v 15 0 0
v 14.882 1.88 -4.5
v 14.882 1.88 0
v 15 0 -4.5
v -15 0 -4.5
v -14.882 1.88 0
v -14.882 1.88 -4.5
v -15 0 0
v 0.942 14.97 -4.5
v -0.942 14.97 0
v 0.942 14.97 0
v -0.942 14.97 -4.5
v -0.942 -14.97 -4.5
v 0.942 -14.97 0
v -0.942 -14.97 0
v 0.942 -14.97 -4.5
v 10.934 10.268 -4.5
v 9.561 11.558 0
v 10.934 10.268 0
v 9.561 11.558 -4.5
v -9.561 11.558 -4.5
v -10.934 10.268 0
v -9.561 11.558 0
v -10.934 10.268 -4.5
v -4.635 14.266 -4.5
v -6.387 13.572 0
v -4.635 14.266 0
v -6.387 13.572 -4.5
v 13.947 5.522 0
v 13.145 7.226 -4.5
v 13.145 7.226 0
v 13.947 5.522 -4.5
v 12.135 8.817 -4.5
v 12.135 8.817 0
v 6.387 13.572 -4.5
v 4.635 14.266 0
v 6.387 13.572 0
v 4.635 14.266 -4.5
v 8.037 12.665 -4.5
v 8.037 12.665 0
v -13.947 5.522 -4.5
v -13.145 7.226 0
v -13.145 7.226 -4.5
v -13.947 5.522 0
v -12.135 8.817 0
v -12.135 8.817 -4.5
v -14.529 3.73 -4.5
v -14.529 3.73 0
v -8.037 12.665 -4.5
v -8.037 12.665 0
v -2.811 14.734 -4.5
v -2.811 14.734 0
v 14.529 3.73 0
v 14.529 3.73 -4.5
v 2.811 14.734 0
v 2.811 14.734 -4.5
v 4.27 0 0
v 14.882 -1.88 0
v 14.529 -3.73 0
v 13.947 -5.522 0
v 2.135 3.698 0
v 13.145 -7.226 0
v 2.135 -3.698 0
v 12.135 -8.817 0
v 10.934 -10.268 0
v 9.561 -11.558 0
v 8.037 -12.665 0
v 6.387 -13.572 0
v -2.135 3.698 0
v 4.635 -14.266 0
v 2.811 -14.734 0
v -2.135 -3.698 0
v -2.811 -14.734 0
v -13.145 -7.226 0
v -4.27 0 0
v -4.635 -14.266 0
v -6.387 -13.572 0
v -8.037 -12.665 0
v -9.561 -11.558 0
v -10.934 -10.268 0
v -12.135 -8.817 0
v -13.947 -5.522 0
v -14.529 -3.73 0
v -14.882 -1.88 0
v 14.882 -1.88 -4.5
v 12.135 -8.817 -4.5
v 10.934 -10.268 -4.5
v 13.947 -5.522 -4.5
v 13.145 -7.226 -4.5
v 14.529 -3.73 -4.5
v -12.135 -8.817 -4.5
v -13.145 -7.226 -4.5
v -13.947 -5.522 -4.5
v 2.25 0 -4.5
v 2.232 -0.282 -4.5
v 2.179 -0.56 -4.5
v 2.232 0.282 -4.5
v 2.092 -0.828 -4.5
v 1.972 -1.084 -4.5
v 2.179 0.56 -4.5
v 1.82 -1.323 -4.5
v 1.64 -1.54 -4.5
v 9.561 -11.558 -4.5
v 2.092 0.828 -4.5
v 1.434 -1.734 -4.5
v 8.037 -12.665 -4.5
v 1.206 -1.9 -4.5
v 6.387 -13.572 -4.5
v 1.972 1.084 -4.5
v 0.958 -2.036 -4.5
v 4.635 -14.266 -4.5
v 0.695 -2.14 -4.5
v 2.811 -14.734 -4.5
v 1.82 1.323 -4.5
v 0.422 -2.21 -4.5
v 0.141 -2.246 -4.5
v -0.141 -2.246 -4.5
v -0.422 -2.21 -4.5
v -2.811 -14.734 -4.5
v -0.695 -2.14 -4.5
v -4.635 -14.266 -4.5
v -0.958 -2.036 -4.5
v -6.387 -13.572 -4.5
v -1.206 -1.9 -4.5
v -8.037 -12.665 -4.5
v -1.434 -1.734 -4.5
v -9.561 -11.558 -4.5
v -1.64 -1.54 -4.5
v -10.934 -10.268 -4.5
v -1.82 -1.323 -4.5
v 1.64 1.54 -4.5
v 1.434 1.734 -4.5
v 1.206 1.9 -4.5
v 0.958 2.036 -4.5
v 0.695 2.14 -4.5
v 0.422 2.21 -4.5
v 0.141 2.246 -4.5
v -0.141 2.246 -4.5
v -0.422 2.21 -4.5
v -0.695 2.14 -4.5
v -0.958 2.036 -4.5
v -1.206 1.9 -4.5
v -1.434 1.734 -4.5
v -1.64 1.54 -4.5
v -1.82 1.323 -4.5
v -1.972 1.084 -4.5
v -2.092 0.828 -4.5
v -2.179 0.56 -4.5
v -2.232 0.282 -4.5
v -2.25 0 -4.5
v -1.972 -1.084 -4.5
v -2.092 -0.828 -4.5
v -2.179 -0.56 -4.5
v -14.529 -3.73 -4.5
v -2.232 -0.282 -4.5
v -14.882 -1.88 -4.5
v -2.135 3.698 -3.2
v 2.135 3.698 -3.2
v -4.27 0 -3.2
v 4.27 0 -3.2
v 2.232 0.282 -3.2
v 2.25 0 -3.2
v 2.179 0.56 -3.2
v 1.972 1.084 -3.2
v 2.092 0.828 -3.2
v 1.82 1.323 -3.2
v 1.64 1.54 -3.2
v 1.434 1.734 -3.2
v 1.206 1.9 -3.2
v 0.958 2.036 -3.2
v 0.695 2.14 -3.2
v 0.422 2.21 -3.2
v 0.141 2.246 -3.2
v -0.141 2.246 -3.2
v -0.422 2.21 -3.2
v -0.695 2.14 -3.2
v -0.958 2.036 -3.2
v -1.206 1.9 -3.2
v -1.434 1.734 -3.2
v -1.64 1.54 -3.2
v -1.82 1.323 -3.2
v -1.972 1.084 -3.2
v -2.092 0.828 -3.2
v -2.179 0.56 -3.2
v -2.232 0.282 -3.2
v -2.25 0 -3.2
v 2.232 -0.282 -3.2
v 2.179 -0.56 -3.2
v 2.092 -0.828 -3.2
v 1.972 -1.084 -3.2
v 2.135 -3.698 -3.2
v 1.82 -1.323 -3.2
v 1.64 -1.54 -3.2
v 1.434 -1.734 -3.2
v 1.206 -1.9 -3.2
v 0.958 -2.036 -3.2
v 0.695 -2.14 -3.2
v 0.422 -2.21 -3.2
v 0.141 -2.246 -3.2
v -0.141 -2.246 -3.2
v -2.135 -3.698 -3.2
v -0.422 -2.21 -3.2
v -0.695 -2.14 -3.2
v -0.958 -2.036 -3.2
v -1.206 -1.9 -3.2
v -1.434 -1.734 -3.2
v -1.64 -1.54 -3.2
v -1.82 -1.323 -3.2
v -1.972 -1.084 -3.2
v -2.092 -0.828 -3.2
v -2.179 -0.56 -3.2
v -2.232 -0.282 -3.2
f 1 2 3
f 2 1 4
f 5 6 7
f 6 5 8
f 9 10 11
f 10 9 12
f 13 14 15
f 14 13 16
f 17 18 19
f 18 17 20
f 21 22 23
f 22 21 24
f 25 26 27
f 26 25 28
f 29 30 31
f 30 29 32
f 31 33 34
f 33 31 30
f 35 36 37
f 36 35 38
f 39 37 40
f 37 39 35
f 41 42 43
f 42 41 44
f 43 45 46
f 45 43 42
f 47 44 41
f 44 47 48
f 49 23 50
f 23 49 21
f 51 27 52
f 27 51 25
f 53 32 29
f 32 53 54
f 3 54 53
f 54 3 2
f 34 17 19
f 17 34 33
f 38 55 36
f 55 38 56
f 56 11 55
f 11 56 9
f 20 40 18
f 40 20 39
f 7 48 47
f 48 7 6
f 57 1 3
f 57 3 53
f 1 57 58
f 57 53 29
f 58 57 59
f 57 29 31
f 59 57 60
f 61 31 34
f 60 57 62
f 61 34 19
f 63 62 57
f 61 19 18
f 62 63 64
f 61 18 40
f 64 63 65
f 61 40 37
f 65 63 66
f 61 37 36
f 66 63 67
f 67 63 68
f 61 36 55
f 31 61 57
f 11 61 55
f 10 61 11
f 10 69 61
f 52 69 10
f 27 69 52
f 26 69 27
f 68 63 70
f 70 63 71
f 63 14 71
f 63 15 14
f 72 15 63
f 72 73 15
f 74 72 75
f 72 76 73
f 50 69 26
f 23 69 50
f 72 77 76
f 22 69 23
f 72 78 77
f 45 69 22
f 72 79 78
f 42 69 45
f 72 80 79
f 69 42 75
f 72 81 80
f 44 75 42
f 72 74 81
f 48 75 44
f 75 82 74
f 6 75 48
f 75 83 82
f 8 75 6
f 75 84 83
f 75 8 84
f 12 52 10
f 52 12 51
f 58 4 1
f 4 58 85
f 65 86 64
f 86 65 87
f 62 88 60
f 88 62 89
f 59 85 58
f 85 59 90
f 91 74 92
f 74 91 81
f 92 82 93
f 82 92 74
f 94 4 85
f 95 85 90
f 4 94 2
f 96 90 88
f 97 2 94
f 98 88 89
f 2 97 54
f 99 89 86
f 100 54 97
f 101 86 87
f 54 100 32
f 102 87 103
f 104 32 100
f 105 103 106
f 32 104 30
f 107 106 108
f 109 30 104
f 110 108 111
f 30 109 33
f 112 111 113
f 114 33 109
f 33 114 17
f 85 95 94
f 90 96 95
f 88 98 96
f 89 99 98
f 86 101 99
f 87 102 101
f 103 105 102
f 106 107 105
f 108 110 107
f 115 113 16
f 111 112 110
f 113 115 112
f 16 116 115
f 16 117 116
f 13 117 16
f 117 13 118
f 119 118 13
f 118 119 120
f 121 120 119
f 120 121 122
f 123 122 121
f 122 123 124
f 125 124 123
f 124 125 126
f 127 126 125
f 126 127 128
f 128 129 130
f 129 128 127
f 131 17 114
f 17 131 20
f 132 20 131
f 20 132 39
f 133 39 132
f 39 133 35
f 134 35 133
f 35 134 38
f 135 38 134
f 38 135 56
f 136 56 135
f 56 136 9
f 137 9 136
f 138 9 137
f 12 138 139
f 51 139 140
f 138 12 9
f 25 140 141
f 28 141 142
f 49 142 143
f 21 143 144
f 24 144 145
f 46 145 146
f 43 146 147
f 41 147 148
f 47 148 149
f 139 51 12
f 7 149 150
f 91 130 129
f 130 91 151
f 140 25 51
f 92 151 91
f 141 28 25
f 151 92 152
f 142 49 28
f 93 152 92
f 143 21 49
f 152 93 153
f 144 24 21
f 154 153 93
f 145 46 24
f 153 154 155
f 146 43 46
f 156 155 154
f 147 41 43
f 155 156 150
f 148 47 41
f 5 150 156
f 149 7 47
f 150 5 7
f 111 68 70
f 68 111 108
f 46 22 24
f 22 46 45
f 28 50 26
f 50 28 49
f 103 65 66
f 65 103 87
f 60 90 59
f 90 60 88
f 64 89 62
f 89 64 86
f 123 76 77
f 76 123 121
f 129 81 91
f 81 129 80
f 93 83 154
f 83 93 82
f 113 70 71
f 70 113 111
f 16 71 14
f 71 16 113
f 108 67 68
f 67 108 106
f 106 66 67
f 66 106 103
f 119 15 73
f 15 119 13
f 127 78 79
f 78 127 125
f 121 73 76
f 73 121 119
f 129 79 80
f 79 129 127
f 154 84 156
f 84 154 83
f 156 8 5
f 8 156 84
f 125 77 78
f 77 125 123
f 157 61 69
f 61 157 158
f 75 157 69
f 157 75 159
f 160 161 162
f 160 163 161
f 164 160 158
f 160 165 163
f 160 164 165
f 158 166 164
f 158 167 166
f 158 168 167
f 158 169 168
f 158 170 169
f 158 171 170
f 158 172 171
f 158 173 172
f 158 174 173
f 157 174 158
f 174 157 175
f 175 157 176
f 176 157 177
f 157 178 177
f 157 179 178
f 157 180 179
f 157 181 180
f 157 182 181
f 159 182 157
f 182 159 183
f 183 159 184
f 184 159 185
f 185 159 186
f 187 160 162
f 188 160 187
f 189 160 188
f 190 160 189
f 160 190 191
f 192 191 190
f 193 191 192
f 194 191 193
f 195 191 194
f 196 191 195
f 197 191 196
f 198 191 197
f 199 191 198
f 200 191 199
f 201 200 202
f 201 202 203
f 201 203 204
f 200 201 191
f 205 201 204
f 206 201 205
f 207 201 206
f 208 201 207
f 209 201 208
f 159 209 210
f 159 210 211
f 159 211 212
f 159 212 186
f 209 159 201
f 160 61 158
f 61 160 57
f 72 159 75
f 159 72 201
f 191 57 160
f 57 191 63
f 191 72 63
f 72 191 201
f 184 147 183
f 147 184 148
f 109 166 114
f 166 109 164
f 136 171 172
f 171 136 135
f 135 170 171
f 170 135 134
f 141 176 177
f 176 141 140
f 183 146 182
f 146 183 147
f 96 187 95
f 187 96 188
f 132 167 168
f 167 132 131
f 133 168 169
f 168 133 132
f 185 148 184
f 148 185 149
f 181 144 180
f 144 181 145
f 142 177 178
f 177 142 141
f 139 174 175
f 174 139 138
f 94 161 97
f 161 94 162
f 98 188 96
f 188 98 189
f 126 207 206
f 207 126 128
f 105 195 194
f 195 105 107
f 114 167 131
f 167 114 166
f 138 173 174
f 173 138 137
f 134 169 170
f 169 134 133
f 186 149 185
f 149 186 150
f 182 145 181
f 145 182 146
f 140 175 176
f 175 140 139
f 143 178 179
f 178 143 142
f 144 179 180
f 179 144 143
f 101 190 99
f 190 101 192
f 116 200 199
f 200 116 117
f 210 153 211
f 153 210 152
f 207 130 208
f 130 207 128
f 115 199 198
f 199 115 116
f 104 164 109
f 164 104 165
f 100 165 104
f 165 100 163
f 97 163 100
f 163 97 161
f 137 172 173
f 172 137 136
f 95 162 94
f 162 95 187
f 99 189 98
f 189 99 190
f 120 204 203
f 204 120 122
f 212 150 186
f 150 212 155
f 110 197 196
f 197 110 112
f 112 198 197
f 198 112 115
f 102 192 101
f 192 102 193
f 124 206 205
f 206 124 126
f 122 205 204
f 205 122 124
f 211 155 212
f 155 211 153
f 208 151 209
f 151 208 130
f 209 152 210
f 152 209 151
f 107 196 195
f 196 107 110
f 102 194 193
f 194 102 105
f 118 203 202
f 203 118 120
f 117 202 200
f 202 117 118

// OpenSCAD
$fn = 50;


difference() {
	union() {
		translate(v = [0, 0, -4.5000000000]) {
			cylinder(h = 4.5000000000, r = 15.0000000000);
		}
		translate(v = [0, 0, -3.0000000000]) {
			cylinder(h = 3, r = 2.8750000000);
		}
	}
	union() {
		translate(v = [0, 0, 0]) {
			rotate(a = [0, 0, 0]) {
				difference() {
					union() {
						translate(v = [0, 0, -3.2000000000]) {
							linear_extrude(height = 3.2000000000) {
								polygon(points = [[4.2698000000, 0.0000000000], [2.1349000000, 3.6977552691], [-2.1349000000, 3.6977552691], [-4.2698000000, 0.0000000000], [-2.1349000000, -3.6977552691], [2.1349000000, -3.6977552691]]);
							}
						}
					}
					union();
				}
			}
		}
		#translate(v = [0, 0, -100.0000000000]) {
			cylinder(h = 200, r = 2.2500000000);
		}
	}
}
